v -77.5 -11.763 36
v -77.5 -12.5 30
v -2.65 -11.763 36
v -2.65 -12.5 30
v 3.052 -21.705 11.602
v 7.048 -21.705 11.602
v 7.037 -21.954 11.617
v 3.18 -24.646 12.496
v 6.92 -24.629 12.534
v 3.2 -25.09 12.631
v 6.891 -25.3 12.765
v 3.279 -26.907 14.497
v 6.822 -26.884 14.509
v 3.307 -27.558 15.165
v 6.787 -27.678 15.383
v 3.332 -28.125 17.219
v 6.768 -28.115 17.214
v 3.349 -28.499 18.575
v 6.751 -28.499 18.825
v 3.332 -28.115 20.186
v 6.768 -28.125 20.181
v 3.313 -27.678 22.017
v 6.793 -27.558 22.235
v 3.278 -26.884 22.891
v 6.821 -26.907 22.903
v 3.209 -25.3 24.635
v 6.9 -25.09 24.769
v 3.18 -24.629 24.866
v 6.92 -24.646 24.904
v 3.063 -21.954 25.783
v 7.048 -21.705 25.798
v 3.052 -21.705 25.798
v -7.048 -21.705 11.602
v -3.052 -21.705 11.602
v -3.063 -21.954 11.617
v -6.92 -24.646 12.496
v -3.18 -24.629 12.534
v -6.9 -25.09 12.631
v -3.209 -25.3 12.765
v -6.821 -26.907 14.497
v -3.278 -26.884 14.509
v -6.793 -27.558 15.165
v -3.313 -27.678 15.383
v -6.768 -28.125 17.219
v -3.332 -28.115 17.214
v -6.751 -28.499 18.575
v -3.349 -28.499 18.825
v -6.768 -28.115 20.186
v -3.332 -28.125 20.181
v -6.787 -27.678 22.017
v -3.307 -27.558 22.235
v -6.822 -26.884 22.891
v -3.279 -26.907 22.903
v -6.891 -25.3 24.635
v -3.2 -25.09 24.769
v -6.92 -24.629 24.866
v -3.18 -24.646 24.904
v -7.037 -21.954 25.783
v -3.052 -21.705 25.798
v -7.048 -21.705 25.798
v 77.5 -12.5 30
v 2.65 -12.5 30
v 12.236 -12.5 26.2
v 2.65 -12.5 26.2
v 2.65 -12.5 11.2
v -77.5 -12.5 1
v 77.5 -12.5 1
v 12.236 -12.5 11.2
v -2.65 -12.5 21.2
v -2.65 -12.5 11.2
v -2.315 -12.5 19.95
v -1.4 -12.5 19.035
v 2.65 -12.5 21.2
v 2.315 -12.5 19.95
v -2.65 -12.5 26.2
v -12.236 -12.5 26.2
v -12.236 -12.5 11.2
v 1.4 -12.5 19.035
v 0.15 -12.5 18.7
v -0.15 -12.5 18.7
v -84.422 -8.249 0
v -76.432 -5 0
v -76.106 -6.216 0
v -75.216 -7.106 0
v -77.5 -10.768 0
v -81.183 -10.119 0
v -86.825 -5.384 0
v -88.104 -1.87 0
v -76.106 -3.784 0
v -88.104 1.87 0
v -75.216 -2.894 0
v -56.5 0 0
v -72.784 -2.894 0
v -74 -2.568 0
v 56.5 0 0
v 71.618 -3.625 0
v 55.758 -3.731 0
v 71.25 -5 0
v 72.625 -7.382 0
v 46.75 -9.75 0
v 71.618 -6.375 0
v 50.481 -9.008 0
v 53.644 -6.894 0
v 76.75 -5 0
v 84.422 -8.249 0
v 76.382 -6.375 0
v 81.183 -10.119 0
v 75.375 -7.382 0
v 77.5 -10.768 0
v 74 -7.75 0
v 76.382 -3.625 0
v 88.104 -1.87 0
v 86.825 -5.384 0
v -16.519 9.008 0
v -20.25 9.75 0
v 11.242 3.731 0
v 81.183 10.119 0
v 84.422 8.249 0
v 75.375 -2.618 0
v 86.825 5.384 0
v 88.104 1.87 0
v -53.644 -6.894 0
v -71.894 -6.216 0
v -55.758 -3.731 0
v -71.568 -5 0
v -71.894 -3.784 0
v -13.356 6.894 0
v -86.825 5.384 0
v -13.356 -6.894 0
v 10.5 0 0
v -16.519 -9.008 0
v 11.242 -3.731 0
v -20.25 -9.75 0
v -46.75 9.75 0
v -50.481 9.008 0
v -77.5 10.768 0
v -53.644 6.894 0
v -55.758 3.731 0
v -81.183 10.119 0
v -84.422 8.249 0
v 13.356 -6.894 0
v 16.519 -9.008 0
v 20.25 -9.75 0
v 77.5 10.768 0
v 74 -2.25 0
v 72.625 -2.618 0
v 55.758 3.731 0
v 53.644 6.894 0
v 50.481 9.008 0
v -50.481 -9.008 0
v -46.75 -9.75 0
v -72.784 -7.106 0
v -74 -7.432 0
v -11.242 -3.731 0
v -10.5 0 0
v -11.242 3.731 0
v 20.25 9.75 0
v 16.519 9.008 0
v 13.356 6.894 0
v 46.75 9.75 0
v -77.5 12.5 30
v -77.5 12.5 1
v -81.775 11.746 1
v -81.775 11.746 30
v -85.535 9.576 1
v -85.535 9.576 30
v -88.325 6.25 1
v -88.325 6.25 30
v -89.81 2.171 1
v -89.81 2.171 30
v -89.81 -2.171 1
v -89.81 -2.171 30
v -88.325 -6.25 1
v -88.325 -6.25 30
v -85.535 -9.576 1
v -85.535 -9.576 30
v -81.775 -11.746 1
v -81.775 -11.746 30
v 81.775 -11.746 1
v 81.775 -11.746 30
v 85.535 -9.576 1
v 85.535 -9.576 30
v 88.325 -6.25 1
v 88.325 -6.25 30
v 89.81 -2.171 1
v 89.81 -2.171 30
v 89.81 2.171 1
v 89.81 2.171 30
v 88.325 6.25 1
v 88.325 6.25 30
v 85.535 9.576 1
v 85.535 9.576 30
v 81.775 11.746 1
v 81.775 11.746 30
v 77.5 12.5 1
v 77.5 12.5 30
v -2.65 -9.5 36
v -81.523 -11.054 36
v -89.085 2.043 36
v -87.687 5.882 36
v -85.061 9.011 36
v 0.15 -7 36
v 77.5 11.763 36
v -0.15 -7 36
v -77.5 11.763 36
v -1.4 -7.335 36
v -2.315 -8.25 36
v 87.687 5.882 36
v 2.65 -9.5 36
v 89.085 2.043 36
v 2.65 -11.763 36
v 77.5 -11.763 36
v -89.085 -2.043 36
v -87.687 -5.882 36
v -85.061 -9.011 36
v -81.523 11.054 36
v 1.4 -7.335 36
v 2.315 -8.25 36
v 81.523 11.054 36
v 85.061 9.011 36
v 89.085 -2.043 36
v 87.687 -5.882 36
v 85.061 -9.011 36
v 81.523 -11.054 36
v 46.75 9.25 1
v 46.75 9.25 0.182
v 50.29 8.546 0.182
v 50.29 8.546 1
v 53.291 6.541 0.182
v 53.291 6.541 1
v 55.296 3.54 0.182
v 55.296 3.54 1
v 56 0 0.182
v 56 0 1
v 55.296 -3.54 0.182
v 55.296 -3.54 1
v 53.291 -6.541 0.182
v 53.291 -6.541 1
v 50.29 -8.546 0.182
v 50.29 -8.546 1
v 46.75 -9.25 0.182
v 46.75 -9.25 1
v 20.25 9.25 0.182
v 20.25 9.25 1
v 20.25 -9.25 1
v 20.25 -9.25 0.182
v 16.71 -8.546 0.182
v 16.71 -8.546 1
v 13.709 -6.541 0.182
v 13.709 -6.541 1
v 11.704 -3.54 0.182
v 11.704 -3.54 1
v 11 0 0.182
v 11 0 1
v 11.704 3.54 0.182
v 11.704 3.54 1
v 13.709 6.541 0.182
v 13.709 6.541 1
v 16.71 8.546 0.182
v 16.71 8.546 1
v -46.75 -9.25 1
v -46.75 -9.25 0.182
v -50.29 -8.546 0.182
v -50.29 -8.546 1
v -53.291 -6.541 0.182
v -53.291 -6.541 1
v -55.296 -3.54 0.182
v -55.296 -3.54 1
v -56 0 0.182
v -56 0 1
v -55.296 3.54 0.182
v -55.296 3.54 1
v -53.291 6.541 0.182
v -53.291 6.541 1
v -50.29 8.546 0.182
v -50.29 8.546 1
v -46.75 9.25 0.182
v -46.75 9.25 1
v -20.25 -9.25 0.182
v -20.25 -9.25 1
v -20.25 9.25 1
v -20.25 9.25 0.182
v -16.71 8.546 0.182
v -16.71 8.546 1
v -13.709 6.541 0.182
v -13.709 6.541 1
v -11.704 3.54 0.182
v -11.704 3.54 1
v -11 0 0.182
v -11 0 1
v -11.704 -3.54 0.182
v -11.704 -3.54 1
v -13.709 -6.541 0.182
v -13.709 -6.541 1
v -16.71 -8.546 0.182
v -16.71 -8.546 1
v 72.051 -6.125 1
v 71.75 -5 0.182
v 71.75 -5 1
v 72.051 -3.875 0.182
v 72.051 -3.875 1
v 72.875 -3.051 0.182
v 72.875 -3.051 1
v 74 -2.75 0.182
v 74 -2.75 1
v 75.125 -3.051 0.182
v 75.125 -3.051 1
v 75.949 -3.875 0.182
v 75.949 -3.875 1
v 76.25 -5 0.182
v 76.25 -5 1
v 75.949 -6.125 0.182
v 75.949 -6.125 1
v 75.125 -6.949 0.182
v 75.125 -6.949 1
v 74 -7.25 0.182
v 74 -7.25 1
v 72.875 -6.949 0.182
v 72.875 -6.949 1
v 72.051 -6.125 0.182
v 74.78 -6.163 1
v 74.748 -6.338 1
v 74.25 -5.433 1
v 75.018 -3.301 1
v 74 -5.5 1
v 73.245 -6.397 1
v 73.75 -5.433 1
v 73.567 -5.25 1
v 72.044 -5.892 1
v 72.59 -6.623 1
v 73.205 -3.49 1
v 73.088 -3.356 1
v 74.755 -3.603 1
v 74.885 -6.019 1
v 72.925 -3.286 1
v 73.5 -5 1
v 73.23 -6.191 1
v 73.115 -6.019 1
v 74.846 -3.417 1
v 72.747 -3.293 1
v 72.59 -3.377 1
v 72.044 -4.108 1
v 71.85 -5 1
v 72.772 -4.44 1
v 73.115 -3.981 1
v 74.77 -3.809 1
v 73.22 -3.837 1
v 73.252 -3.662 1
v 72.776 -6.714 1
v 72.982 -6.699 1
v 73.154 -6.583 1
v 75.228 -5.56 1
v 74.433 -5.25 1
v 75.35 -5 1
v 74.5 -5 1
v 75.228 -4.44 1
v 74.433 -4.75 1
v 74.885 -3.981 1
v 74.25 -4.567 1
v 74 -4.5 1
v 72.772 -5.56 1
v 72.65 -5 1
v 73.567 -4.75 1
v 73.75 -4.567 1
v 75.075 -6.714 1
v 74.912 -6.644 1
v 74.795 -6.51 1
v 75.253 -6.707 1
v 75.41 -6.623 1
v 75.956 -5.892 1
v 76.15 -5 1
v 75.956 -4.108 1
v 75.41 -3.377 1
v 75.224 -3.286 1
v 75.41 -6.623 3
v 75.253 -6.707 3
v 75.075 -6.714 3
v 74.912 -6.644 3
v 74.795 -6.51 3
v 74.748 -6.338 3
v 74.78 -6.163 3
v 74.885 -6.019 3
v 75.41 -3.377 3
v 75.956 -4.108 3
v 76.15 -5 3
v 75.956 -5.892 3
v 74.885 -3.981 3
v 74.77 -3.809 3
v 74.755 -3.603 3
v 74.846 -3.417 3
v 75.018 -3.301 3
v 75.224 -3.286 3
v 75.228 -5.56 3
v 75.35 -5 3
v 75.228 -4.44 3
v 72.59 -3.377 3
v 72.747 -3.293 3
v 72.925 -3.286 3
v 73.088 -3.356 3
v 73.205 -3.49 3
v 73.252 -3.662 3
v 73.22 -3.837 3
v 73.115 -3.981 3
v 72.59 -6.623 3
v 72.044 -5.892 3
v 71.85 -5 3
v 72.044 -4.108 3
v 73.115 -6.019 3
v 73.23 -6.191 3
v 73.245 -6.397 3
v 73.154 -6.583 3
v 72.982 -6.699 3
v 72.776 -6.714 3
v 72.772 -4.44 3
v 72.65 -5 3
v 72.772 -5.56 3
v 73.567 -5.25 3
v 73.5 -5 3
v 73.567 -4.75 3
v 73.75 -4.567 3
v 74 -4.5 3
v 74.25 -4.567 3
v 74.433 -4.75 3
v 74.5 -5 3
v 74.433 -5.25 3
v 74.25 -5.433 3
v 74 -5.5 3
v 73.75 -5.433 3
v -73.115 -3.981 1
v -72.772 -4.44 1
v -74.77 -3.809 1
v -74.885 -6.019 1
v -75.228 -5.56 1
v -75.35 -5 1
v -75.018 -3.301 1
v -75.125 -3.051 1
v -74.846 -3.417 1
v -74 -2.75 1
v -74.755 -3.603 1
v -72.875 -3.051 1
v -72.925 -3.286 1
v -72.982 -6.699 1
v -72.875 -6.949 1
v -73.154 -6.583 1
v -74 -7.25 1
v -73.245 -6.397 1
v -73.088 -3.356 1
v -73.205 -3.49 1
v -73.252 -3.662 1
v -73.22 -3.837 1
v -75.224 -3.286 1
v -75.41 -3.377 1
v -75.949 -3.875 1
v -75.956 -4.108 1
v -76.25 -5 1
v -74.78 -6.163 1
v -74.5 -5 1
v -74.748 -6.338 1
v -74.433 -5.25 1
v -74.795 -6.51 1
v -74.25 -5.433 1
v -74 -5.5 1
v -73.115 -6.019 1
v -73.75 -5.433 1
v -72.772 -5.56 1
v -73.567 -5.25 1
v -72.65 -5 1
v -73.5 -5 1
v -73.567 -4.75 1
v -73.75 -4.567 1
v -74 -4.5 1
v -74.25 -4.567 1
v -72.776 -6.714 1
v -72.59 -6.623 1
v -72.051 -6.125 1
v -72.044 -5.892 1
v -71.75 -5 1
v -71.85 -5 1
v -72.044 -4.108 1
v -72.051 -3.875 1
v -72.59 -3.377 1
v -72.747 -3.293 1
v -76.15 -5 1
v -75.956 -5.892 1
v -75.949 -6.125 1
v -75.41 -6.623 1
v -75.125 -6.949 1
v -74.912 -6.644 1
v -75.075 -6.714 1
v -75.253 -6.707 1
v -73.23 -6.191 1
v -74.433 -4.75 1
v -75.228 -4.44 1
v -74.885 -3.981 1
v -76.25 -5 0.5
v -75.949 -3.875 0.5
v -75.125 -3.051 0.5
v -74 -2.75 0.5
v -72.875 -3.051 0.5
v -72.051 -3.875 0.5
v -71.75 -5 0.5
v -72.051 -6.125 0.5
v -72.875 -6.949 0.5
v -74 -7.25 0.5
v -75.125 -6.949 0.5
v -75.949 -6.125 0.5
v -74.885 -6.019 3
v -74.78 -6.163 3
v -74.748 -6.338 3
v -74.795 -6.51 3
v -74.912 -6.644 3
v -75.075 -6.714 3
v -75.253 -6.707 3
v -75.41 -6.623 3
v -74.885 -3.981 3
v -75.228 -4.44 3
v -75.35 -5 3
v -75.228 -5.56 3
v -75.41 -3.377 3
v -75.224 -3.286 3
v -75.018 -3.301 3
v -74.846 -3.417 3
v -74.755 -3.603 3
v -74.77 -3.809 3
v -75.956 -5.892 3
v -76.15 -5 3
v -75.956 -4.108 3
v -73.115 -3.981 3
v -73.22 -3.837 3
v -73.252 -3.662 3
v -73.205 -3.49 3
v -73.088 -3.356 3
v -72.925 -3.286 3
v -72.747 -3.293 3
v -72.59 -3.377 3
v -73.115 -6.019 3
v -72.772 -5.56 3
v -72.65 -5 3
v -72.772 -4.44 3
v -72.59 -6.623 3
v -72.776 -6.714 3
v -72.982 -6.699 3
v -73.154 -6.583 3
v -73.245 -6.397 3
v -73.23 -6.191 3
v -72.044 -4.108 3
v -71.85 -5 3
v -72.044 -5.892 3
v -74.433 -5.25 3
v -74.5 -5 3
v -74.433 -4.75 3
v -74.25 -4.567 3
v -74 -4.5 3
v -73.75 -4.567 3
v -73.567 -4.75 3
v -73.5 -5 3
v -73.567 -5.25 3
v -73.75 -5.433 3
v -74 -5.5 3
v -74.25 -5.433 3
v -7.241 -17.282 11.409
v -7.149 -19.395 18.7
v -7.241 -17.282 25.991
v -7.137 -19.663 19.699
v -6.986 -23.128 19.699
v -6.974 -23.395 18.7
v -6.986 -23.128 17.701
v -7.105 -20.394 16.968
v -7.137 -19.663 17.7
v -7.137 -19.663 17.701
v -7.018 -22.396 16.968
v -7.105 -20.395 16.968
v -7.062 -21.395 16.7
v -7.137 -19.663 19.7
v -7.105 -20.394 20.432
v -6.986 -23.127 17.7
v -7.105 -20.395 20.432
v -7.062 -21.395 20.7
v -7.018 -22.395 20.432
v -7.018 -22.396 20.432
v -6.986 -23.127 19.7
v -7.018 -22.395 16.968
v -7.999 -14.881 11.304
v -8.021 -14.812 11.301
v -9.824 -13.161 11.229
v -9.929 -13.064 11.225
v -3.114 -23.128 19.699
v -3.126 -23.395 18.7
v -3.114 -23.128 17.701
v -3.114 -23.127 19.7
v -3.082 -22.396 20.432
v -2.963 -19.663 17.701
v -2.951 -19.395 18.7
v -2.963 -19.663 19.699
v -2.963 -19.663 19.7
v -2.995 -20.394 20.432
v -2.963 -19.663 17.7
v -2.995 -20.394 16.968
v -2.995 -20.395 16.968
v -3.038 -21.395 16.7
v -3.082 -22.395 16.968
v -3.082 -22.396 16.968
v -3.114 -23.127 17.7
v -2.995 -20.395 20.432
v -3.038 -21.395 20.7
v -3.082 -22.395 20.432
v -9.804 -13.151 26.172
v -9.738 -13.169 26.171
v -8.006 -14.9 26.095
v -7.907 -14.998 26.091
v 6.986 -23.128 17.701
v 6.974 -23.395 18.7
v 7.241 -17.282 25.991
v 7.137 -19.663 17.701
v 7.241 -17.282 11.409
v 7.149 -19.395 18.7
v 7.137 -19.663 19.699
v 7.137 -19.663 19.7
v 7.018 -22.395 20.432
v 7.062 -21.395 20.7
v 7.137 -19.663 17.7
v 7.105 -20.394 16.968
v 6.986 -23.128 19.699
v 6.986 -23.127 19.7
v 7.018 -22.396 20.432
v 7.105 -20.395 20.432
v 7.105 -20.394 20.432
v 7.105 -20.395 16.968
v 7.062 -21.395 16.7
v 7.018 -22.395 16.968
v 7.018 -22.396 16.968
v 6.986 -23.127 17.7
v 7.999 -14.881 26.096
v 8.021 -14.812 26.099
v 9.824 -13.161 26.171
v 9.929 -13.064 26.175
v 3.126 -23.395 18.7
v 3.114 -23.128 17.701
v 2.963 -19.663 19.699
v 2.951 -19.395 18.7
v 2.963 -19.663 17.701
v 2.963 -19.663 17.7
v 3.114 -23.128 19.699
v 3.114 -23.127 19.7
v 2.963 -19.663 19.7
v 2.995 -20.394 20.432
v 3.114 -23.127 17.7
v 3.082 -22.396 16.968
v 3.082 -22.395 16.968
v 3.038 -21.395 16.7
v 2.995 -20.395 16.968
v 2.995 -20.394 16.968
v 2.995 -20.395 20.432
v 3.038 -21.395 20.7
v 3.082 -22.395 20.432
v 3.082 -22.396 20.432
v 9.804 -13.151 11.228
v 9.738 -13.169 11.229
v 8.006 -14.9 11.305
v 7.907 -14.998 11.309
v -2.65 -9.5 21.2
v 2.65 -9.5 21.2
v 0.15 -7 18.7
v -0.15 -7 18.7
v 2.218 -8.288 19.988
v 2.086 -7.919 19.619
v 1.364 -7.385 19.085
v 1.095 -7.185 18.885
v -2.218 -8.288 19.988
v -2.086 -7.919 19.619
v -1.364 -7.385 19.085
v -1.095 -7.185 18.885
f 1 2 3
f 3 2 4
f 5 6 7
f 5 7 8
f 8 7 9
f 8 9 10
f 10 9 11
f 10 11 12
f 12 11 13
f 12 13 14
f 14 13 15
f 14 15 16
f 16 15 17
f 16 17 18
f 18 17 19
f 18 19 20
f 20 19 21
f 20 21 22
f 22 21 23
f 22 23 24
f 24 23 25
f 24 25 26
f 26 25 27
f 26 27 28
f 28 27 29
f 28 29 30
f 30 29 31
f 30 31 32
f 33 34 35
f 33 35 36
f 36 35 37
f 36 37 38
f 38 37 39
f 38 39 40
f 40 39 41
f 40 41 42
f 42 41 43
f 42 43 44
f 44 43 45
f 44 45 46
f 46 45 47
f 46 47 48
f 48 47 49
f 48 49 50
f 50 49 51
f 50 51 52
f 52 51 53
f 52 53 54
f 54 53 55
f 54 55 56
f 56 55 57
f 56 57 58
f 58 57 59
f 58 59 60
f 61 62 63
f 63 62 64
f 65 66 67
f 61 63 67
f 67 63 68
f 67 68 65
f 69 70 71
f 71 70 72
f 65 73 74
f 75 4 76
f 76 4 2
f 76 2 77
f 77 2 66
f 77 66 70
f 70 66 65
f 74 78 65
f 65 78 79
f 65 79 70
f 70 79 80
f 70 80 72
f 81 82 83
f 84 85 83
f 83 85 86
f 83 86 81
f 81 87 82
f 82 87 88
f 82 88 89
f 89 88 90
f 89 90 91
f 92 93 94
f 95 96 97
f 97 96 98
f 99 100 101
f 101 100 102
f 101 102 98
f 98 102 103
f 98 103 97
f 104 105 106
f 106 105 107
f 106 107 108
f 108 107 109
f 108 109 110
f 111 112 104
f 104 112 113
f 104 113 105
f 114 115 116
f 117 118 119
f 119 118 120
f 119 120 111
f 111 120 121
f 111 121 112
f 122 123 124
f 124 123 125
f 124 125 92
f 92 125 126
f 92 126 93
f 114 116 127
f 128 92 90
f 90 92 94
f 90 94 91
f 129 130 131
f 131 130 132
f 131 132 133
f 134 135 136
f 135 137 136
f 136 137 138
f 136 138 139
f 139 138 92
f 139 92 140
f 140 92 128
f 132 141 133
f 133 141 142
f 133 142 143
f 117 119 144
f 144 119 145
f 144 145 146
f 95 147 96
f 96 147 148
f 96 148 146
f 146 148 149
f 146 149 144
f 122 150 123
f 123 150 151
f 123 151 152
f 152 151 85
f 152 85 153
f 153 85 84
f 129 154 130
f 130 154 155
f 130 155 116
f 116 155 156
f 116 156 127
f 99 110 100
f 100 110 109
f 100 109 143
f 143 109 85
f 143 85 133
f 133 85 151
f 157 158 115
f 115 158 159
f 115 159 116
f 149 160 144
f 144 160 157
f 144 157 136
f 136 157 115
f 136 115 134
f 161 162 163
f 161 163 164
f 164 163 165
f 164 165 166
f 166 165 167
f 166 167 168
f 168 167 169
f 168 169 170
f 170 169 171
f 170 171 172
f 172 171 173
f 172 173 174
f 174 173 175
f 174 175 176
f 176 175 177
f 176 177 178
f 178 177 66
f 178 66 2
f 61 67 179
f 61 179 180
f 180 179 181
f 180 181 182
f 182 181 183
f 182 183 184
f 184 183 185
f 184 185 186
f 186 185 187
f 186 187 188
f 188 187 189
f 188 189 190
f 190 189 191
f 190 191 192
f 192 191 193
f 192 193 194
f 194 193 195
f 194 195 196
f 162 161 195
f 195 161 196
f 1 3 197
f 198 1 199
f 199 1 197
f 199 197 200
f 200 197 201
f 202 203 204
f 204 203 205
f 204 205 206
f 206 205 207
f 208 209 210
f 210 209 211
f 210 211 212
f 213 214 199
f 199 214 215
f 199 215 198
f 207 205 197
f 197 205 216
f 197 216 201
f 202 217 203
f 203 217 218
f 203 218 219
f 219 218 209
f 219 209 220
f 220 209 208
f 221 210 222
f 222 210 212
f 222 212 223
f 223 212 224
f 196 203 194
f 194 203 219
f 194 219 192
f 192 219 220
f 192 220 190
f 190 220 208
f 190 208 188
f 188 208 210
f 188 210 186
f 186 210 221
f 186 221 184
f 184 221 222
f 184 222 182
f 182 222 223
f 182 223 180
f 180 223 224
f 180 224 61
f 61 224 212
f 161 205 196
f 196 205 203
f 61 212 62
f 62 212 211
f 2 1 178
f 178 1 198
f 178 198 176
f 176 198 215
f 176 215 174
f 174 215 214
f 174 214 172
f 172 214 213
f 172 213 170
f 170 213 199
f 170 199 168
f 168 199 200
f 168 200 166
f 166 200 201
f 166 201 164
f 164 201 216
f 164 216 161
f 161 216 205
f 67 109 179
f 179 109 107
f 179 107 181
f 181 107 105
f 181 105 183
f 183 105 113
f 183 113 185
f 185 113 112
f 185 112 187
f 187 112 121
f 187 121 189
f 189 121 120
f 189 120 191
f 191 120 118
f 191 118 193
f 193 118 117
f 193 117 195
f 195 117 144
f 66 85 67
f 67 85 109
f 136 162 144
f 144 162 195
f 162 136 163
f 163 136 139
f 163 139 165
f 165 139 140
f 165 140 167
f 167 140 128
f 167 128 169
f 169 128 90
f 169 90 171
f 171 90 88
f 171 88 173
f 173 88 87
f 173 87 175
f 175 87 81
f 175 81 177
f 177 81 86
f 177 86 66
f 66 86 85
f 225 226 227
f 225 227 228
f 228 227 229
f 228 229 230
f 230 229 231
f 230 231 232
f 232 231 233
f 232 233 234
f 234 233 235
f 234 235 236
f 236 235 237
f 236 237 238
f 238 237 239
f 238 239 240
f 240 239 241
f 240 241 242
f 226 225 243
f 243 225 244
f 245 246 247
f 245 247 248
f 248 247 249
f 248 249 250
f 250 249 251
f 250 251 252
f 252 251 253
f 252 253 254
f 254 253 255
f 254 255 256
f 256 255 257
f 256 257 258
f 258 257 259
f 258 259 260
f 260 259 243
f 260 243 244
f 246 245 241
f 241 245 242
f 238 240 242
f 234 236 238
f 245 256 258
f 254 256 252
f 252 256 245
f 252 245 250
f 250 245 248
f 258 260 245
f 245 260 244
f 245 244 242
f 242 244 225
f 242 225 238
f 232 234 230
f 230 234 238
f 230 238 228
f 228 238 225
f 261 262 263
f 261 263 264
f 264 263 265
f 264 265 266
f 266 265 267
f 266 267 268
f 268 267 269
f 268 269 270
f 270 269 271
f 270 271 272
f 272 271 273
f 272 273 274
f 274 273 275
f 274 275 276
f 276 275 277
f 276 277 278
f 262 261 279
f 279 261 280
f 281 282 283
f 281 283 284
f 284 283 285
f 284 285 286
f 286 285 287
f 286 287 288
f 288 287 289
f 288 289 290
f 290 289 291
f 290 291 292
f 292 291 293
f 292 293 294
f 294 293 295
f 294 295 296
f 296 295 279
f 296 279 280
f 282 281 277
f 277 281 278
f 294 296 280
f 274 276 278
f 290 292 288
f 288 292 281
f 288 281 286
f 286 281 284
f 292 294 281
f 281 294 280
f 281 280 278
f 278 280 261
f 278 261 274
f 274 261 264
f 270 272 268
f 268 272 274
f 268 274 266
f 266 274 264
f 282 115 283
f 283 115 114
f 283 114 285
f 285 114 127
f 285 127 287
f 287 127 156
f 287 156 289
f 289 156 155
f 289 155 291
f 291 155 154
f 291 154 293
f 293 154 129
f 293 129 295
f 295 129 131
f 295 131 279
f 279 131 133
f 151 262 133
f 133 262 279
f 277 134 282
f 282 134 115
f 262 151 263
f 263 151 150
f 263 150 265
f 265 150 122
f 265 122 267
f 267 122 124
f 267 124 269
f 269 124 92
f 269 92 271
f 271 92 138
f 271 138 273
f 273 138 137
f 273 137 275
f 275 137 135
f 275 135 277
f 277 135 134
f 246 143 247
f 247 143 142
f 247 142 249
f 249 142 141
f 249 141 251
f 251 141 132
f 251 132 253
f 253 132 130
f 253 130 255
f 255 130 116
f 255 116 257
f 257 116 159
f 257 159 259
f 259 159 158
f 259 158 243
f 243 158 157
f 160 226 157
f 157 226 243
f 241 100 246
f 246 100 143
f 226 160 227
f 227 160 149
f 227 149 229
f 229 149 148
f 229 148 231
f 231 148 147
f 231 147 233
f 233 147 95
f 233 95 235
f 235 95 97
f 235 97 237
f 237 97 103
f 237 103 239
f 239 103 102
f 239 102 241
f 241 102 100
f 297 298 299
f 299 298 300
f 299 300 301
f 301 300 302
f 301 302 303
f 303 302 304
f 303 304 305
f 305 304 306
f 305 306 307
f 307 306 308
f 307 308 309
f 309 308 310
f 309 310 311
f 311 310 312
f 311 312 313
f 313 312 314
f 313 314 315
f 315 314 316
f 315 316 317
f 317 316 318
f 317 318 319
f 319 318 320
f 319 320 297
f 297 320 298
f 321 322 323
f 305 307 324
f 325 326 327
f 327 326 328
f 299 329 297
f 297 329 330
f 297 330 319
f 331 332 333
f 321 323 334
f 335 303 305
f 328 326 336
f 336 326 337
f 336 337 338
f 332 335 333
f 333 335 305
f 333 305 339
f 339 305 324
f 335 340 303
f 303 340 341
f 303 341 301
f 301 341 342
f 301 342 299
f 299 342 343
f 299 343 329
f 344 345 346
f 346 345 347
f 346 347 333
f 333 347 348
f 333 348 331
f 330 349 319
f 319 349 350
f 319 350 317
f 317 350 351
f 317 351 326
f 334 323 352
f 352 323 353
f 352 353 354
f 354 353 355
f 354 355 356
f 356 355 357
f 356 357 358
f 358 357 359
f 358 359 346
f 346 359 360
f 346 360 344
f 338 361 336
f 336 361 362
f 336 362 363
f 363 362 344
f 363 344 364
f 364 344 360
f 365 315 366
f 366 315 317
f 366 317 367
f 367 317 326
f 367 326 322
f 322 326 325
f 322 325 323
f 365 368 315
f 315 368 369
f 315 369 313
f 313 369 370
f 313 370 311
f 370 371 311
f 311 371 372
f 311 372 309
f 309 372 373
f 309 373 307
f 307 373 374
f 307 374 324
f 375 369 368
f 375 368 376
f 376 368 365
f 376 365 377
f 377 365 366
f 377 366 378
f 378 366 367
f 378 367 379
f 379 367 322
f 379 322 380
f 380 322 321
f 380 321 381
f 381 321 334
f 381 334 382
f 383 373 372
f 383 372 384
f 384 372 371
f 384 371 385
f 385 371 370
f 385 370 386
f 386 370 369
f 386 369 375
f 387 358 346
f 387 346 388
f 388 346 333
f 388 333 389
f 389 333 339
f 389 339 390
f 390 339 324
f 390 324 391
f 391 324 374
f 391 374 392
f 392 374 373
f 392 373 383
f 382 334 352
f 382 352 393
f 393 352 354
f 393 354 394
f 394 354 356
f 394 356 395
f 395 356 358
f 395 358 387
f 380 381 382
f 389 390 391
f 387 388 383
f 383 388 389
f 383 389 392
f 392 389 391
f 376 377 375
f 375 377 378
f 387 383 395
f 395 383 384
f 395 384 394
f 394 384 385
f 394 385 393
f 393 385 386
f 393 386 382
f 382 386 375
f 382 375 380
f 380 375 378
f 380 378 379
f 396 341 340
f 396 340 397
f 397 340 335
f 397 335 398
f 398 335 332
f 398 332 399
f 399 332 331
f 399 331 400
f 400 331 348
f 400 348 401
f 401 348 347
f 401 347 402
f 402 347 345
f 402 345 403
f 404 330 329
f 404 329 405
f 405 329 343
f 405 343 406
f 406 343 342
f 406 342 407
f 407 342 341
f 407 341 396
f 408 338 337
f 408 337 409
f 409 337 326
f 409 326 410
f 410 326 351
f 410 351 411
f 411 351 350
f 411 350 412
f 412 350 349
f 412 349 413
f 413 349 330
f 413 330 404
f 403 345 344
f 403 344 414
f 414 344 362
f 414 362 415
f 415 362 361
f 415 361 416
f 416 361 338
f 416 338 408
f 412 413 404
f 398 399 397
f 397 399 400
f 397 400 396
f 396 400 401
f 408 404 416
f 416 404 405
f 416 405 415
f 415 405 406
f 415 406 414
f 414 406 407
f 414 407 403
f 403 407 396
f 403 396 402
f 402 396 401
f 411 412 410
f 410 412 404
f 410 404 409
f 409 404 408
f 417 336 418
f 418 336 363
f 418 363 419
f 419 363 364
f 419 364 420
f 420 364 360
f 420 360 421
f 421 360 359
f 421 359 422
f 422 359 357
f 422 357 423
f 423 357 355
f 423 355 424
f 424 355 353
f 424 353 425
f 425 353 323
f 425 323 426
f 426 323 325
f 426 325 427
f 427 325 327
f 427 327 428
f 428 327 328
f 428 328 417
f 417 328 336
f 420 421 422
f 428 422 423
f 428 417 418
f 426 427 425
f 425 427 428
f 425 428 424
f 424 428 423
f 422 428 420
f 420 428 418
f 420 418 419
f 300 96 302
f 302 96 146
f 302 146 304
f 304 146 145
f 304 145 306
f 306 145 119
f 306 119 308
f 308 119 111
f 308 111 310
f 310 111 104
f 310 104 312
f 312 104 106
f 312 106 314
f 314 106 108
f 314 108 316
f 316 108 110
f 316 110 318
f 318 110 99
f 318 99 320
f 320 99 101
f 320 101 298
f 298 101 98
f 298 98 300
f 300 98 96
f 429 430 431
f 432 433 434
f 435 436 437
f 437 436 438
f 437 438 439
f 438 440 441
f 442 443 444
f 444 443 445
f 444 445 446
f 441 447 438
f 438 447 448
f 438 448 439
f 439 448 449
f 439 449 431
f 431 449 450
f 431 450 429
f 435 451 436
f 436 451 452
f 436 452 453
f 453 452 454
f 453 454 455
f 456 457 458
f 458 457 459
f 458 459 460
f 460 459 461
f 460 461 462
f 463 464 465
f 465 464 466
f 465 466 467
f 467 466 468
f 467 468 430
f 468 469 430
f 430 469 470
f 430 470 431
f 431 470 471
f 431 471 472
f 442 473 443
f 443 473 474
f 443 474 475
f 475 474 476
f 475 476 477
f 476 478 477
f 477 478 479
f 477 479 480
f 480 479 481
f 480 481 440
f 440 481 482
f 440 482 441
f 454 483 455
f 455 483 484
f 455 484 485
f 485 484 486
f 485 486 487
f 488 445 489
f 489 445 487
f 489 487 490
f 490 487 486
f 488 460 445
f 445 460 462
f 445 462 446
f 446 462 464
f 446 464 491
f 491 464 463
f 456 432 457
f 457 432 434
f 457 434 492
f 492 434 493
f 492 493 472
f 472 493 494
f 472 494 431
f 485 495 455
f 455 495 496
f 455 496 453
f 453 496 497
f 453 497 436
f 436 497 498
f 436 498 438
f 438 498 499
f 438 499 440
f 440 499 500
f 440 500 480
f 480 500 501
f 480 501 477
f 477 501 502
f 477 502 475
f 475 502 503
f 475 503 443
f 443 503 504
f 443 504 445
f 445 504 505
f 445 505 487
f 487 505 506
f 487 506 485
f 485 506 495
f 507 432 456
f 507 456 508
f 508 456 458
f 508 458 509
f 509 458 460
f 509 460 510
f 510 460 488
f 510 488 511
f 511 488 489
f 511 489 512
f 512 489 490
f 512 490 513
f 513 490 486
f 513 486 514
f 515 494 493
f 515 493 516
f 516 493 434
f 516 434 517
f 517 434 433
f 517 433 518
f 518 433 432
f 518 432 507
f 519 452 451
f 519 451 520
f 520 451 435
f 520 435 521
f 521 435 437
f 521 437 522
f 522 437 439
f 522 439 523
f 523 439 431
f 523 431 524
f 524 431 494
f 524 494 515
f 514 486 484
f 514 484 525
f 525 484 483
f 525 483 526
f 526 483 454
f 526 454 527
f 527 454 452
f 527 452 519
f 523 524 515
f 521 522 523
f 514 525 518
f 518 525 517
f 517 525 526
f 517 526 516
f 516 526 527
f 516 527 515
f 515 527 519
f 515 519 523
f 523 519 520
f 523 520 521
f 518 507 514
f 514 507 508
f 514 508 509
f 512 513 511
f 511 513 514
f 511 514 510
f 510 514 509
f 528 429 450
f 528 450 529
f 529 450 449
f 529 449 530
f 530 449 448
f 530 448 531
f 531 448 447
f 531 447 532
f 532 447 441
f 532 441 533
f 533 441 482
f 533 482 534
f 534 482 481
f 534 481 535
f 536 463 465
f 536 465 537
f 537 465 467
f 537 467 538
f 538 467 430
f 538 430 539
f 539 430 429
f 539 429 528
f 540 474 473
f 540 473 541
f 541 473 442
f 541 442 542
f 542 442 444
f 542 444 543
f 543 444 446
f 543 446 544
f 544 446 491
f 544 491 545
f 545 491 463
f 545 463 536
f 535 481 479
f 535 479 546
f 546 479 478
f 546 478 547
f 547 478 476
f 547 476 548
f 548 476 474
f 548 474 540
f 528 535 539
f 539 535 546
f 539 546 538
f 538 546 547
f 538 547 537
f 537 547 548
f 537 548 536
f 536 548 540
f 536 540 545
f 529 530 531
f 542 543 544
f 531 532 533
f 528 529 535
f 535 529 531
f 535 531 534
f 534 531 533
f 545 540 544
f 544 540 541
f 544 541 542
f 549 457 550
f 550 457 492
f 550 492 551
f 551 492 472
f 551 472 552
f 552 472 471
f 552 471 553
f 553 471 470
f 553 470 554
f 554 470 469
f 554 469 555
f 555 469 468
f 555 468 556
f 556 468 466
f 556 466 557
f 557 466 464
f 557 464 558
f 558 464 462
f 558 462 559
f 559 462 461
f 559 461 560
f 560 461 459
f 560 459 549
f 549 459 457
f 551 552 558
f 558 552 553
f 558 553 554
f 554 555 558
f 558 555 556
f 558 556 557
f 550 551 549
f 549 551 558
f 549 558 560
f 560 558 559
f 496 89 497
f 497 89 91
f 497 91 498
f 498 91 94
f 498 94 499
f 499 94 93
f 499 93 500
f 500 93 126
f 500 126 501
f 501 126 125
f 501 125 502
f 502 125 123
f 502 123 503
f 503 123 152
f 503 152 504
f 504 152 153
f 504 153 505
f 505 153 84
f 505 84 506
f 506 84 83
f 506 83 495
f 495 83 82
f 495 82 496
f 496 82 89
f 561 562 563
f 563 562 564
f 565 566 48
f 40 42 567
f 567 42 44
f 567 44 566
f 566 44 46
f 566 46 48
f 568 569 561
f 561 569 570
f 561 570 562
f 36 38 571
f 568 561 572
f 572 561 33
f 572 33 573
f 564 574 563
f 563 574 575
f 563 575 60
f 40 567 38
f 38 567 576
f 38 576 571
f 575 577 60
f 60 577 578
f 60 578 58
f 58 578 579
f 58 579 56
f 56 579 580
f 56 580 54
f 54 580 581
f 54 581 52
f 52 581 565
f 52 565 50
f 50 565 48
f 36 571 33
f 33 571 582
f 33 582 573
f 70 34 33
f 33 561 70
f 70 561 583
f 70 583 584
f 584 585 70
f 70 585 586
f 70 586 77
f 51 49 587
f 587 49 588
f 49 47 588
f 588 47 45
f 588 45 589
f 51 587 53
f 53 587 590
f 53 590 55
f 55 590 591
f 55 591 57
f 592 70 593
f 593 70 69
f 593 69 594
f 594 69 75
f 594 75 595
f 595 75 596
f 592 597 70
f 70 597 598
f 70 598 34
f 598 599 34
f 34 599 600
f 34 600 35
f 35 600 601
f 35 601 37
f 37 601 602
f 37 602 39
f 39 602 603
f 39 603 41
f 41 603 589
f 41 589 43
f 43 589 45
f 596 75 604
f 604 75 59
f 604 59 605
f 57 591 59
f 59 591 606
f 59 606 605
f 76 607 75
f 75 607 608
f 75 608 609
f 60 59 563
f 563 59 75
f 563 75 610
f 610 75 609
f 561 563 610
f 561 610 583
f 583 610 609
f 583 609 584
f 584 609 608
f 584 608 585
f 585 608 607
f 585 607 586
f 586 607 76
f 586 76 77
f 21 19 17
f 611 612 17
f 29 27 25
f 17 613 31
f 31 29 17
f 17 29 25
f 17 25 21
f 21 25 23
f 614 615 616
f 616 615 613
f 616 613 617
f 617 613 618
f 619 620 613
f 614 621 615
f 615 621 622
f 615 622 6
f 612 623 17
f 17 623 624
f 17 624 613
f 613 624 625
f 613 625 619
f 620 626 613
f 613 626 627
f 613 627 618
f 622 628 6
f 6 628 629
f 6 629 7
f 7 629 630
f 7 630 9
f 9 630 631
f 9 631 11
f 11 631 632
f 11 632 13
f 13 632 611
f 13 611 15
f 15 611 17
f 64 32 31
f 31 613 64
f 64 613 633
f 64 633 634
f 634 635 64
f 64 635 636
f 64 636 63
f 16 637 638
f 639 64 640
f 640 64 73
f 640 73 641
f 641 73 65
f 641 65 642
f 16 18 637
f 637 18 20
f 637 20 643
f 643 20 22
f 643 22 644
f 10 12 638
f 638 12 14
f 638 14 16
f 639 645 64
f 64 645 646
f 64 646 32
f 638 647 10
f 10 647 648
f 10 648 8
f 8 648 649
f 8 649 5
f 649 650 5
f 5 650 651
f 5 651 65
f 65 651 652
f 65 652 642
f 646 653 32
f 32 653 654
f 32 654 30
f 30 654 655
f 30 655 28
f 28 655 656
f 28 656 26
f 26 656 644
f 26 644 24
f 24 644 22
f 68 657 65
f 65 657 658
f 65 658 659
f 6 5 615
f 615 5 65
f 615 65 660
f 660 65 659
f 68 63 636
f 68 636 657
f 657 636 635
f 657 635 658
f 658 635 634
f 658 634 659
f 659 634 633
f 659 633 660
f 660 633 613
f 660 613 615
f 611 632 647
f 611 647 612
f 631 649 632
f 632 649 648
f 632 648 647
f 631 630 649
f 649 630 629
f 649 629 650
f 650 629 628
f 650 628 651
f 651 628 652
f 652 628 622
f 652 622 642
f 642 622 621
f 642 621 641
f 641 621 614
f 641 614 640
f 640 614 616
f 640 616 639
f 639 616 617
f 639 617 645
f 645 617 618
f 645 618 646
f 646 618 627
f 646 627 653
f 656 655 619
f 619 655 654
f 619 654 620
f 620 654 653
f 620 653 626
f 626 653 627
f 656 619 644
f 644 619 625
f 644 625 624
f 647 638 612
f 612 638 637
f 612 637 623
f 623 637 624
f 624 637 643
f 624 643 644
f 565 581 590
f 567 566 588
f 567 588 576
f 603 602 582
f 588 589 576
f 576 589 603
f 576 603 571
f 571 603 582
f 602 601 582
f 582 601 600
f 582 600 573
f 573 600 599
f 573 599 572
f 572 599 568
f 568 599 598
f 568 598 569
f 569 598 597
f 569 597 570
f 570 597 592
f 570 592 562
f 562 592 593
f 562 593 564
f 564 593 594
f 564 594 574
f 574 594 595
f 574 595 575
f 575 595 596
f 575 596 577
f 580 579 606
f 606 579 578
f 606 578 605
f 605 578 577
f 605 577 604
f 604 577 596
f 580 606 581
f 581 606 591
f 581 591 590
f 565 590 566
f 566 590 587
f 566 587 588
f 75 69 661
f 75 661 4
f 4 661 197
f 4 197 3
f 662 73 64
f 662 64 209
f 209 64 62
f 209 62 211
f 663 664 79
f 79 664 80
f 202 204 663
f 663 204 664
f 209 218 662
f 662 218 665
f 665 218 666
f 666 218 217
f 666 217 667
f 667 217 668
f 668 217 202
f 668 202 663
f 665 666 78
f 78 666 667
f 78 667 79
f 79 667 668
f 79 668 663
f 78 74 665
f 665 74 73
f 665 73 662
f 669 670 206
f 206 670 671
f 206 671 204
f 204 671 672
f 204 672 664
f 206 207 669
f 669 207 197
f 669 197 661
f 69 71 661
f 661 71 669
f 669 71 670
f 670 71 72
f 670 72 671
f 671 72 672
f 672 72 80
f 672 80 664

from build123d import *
from OCP.BRepFilletAPI import BRepFilletAPI_MakeChamfer

# Parameters (mm, degrees)
SKETCH1_W                 = 180
SKETCH1_H                 = 25
BOSS_EXTRUDE1_DEPTH       = 36
FILLET1_RADIUS            = 12.5
FILLET1_LENGTH            = 36
FILLET2_RADIUS            = 12.5
FILLET2_LENGTH            = 36
CHAMFER1_SIZE             = 6
CHAMFER1_SIZE2            = 0.736707365
CHAMFER2_SIZE             = 1
CHAMFER2_SIZE2            = 1.732050808
CUT_EXTRUDE1_DEPTH        = 1
CHAMFER3_SIZE             = 0.5
CHAMFER3_SIZE2            = 0.181985117
SKETCH4_R                 = 2.25
SKETCH4_R_2               = 0.5
CUT_EXTRUDE2_DEPTH        = 1
SKETCH4_2_R               = 0.5
CUT_EXTRUDE3_DEPTH        = 3
CHAMFER4_SIZE             = 0.5
CHAMFER4_SIZE2            = 0.181985117
CHAMFER4_OF_MIRROR1_SIZE2 = 0.5
CHAMFER4_OF_MIRROR1_SIZE  = 0.181985117
SKETCH6_W                 = 4.8
SKETCH6_H                 = 15
BOSS_EXTRUDE2_DEPTH       = 16
BOSS_EXTRUDE2_TAPER       = 2.5
FILLET3_R                 = 5
FILLET4_R                 = 7.104861
FILLET3_OF_MIRROR2_R      = 5
FILLET4_OF_MIRROR2_R      = 7.104861
CUT_EXTRUDE4_DEPTH        = 102.035884743
CUT_EXTRUDE4_DEPTH_BACK   = 102.035884743
SKETCH7_R                 = 2
SKETCH8_W                 = 5.3
SKETCH8_H                 = 17.3
CUT_EXTRUDE5_DEPTH        = 5.5
FILLET5_R                 = 2.5


# Some blends are built 0.0001 mm under size
with BuildPart() as part:
    # Sketch1 → Boss-Extrude1 (new body)
    with BuildSketch(Plane.XY):
        Rectangle(SKETCH1_W, SKETCH1_H)
    extrude(amount=BOSS_EXTRUDE1_DEPTH)

    # Fillet1: full round fillet: the end face becomes a half cylinder, R = half its width
    fillet1_face = Plane((90, 0, 18), x_dir=(0, 0, -1), z_dir=(1, 0, 0))  # on the end face: x along it, z out of the body
    fillet1_slab = fillet1_face.offset(-FILLET1_RADIUS / 2) * Box(FILLET1_LENGTH, 2 * FILLET1_RADIUS, FILLET1_RADIUS, mode=Mode.PRIVATE)  # the body's end, R deep
    fillet1_round = Plane((77.5, 0, 18), x_dir=(1, 0, 0), z_dir=(0, 0, -1)) * Cylinder(FILLET1_RADIUS, FILLET1_LENGTH, mode=Mode.PRIVATE)  # its axis R under the face
    add(fillet1_slab - fillet1_round, mode=Mode.SUBTRACT)

    # Fillet2: full round fillet: the end face becomes a half cylinder, R = half its width
    fillet2_face = Plane((-90, 0, 18), x_dir=(0, 0, 1), z_dir=(-1, 0, 0))  # on the end face: x along it, z out of the body
    fillet2_slab = fillet2_face.offset(-FILLET2_RADIUS / 2) * Box(FILLET2_LENGTH, 2 * FILLET2_RADIUS, FILLET2_RADIUS, mode=Mode.PRIVATE)  # the body's end, R deep
    fillet2_round = Plane((-77.5, 0, 18), x_dir=(-1, 0, 0), z_dir=(0, 0, 1)) * Cylinder(FILLET2_RADIUS, FILLET2_LENGTH, mode=Mode.PRIVATE)  # its axis R under the face
    add(fillet2_slab - fillet2_round, mode=Mode.SUBTRACT)

    # Chamfer1: one chamfer whose edges measure the first distance from different faces: ONE call of the kernel's chamfer builder (chamfer() names one face for all edges)
    chamfer1_edges_1 = [part.edges().sort_by_distance(p)[0] for p in [
        (0, 12.5, 36),
    ]]
    chamfer1_side_1 = [part.faces().sort_by_distance(p)[0] for p in [
        (0, 12.5, 18),
    ]]
    chamfer1_edges_2 = [part.edges().sort_by_distance(p)[0] for p in [
        (90, 0, 36),
    ]]
    chamfer1_side_2 = [part.faces().sort_by_distance(p)[0] for p in [
        (90, 0, 18),
    ]]
    chamfer1_edges_3 = [part.edges().sort_by_distance(p)[0] for p in [
        (0, -12.5, 36),
    ]]
    chamfer1_side_3 = [part.faces().sort_by_distance(p)[0] for p in [
        (0, -12.5, 18),
    ]]
    chamfer1_edges_4 = [part.edges().sort_by_distance(p)[0] for p in [
        (-90, 0, 36),
    ]]
    chamfer1_side_4 = [part.faces().sort_by_distance(p)[0] for p in [
        (-90, 0, 18),
    ]]
    chamfer1 = BRepFilletAPI_MakeChamfer(part.part.solid().wrapped)
    for e in chamfer1_edges_1:
        chamfer1.Add(CHAMFER1_SIZE, CHAMFER1_SIZE2, e.wrapped, chamfer1_side_1[0].wrapped)  # the first distance lies on this face
    for e in chamfer1_edges_2:
        chamfer1.Add(CHAMFER1_SIZE, CHAMFER1_SIZE2, e.wrapped, chamfer1_side_2[0].wrapped)  # the first distance lies on this face
    for e in chamfer1_edges_3:
        chamfer1.Add(CHAMFER1_SIZE, CHAMFER1_SIZE2, e.wrapped, chamfer1_side_3[0].wrapped)  # the first distance lies on this face
    for e in chamfer1_edges_4:
        chamfer1.Add(CHAMFER1_SIZE, CHAMFER1_SIZE2, e.wrapped, chamfer1_side_4[0].wrapped)  # the first distance lies on this face
    add(Compound.cast(chamfer1.Shape()), mode=Mode.REPLACE)

    # Chamfer2: one chamfer whose edges measure the first distance from different faces: ONE call of the kernel's chamfer builder (chamfer() names one face for all edges)
    chamfer2_edges_1 = [part.edges().sort_by_distance(p)[0] for p in [
        (0, 12.5, 0),
    ]]
    chamfer2_side_1 = [part.faces().sort_by_distance(p)[0] for p in [
        (0, 12.5, 15),
    ]]
    chamfer2_edges_2 = [part.edges().sort_by_distance(p)[0] for p in [
        (90, 0, 0),
    ]]
    chamfer2_side_2 = [part.faces().sort_by_distance(p)[0] for p in [
        (90, 0, 15),
    ]]
    chamfer2_edges_3 = [part.edges().sort_by_distance(p)[0] for p in [
        (0, -12.5, 0),
    ]]
    chamfer2_side_3 = [part.faces().sort_by_distance(p)[0] for p in [
        (0, -12.5, 15),
    ]]
    chamfer2_edges_4 = [part.edges().sort_by_distance(p)[0] for p in [
        (-90, 0, 0),
    ]]
    chamfer2_side_4 = [part.faces().sort_by_distance(p)[0] for p in [
        (-90, 0, 15),
    ]]
    chamfer2 = BRepFilletAPI_MakeChamfer(part.part.solid().wrapped)
    for e in chamfer2_edges_1:
        chamfer2.Add(CHAMFER2_SIZE, CHAMFER2_SIZE2, e.wrapped, chamfer2_side_1[0].wrapped)  # the first distance lies on this face
    for e in chamfer2_edges_2:
        chamfer2.Add(CHAMFER2_SIZE, CHAMFER2_SIZE2, e.wrapped, chamfer2_side_2[0].wrapped)  # the first distance lies on this face
    for e in chamfer2_edges_3:
        chamfer2.Add(CHAMFER2_SIZE, CHAMFER2_SIZE2, e.wrapped, chamfer2_side_3[0].wrapped)  # the first distance lies on this face
    for e in chamfer2_edges_4:
        chamfer2.Add(CHAMFER2_SIZE, CHAMFER2_SIZE2, e.wrapped, chamfer2_side_4[0].wrapped)  # the first distance lies on this face
    add(Compound.cast(chamfer2.Shape()), mode=Mode.REPLACE)

    # Sketch2 → Cut-Extrude1 (cut)
    with BuildSketch(Plane(origin=(0, 0, 0), x_dir=(-1, 0, 0), z_dir=(0, 0, -1))):
        with BuildLine():
            Line((-46.75, 9.25), (-20.25, 9.25))
            ThreePointArc((-20.25, 9.25), (-11, 0), (-20.25, -9.25))
            Line((-20.25, -9.25), (-46.75, -9.25))
            ThreePointArc((-46.75, -9.25), (-56, 0), (-46.75, 9.25))
        make_face()
        with BuildLine():
            Line((46.75, 9.25), (20.25, 9.25))
            ThreePointArc((20.25, 9.25), (11, 0), (20.25, -9.25))
            Line((20.25, -9.25), (46.75, -9.25))
            ThreePointArc((46.75, -9.25), (56, 0), (46.75, 9.25))
        make_face()
    extrude(amount=-CUT_EXTRUDE1_DEPTH, mode=Mode.SUBTRACT)

    # Chamfer3
    chamfer3_edges = [part.edges().sort_by_distance(p)[0] for p in [
        (56, 0, 0),
        (33.5, -9.25, 0),
        (11, 0, 0),
        (33.5, 9.25, 0),
        (-56, 0, 0),
        (-33.5, 9.25, 0),
        (-11, 0, 0),
        (-33.5, -9.25, 0),
    ]]
    chamfer3_side = [part.faces().sort_by_distance(p)[0] for p in [
        (0, 0, 0),
    ]]
    chamfer(chamfer3_edges, length=CHAMFER3_SIZE, length2=CHAMFER3_SIZE2, reference=chamfer3_side[0])

    # Sketch4 → Cut-Extrude2 (cut)
    with BuildSketch(Plane(origin=(0, 0, 0), x_dir=(-1, 0, 0), z_dir=(0, 0, -1))):
        with Locations((-74, -5)):
            Circle(SKETCH4_R)
        with Locations((-74, -5)):
            Circle(SKETCH4_R_2, mode=Mode.SUBTRACT)
        with BuildLine():
            ThreePointArc((-72.589778643, -3.377108838), (-71.85, -5), (-72.589778643, -6.622891162))
            ThreePointArc((-72.589778643, -6.622891162), (-73.154078646, -6.583324687), (-73.114512171, -6.019024683))
            ThreePointArc((-73.114512171, -6.019024683), (-72.65, -5), (-73.114512171, -3.980975317))
            ThreePointArc((-73.114512171, -3.980975317), (-73.154078646, -3.416675313), (-72.589778643, -3.377108838))
        make_face(mode=Mode.SUBTRACT)
        with BuildLine():
            ThreePointArc((-75.410221357, -6.622891162), (-76.15, -5), (-75.410221357, -3.377108838))
            ThreePointArc((-75.410221357, -3.377108838), (-74.845921354, -3.416675313), (-74.885487829, -3.980975317))
            ThreePointArc((-74.885487829, -3.980975317), (-75.35, -5), (-74.885487829, -6.019024683))
            ThreePointArc((-74.885487829, -6.019024683), (-74.845921354, -6.583324687), (-75.410221357, -6.622891162))
        make_face(mode=Mode.SUBTRACT)
    cut_extrude2 = extrude(amount=-CUT_EXTRUDE2_DEPTH, mode=Mode.SUBTRACT)

    # Sketch4<2> → Cut-Extrude3 (cut)
    with BuildSketch(Plane(origin=(0, 0, 0), x_dir=(-1, 0, 0), z_dir=(0, 0, -1))):
        with BuildLine():
            ThreePointArc((-74.885487829, -6.019024683), (-74.845921354, -6.583324687), (-75.410221357, -6.622891162))
            ThreePointArc((-75.410221357, -6.622891162), (-76.15, -5), (-75.410221357, -3.377108838))
            ThreePointArc((-75.410221357, -3.377108838), (-74.845921354, -3.416675313), (-74.885487829, -3.980975317))
            ThreePointArc((-74.885487829, -3.980975317), (-75.35, -5), (-74.885487829, -6.019024683))
        make_face()
        with BuildLine():
            ThreePointArc((-73.114512171, -3.980975317), (-73.154078646, -3.416675313), (-72.589778643, -3.377108838))
            ThreePointArc((-72.589778643, -3.377108838), (-71.85, -5), (-72.589778643, -6.622891162))
            ThreePointArc((-72.589778643, -6.622891162), (-73.154078646, -6.583324687), (-73.114512171, -6.019024683))
            ThreePointArc((-73.114512171, -6.019024683), (-72.65, -5), (-73.114512171, -3.980975317))
        make_face()
        with Locations((-74, -5)):
            Circle(SKETCH4_2_R)
    cut_extrude3 = extrude(amount=-CUT_EXTRUDE3_DEPTH, mode=Mode.SUBTRACT)

    # Chamfer4
    chamfer4_edges = [part.edges().sort_by_distance(p)[0] for p in [
        (76.25, -5, 0),
    ]]
    chamfer4_side = [part.faces().sort_by_distance(p)[0] for p in [
        (-0.572534996, 0.038684797, 0),
    ]]
    chamfer(chamfer4_edges, length=CHAMFER4_SIZE, length2=CHAMFER4_SIZE2, reference=chamfer4_side[0])

    # Mirror1: Cut-Extrude2, Cut-Extrude3 across plane
    add(cut_extrude2.mirror(Plane(origin=(0, 0, 0), x_dir=(0, 0, 1), z_dir=(1, 0, 0))), mode=Mode.SUBTRACT)
    add(cut_extrude3.mirror(Plane(origin=(0, 0, 0), x_dir=(0, 0, 1), z_dir=(1, 0, 0))), mode=Mode.SUBTRACT)

    # Chamfer4 of Mirror1
    chamfer4_of_mirror1_edges = [part.edges().sort_by_distance(p)[0] for p in [
        (-76.25, -5, 0),
    ]]
    chamfer(chamfer4_of_mirror1_edges, length=CHAMFER4_OF_MIRROR1_SIZE, length2=CHAMFER4_OF_MIRROR1_SIZE2)

    # Sketch6 → Boss-Extrude2 (add)
    with BuildSketch(Plane.XZ.offset(12.5)):
        with Locations((-5.05, 18.7)):
            Rectangle(SKETCH6_W, SKETCH6_H)
    boss_extrude2 = extrude(amount=BOSS_EXTRUDE2_DEPTH, taper=BOSS_EXTRUDE2_TAPER)

    # Fillet3
    fillet3_edges = [part.edges().sort_by_distance(p)[0] for p in [
        (-7.45, -12.5, 18.7),
    ]]
    fillet(fillet3_edges, radius=FILLET3_R)

    # Fillet4
    fillet4_edges = [part.edges().sort_by_distance(p)[0] for p in [
        (-5.05, -28.5, 11.898575087),
        (-5.05, -28.5, 25.501424913),
    ]]
    fillet(fillet4_edges, radius=FILLET4_R - 0.0001)  # a hair under: the kernel refuses the full size

    # Mirror2: Boss-Extrude2 across plane
    add(boss_extrude2.mirror(Plane(origin=(0, 0, 0), x_dir=(0, 0, 1), z_dir=(1, 0, 0))))

    # Fillet3 of Mirror2
    fillet3_of_mirror2_edges = [part.edges().sort_by_distance(p)[0] for p in [
        (7.45, -12.5, 18.7),
    ]]
    fillet(fillet3_of_mirror2_edges, radius=FILLET3_OF_MIRROR2_R)

    # Fillet4 of Mirror2
    fillet4_of_mirror2_edges = [part.edges().sort_by_distance(p)[0] for p in [
        (5.05, -28.5, 11.898575087),
        (5.05, -28.5, 25.501424913),
    ]]
    fillet(fillet4_of_mirror2_edges, radius=FILLET4_OF_MIRROR2_R - 0.0001)  # a hair under: the kernel refuses the full size

    # Sketch7 → Cut-Extrude4 (cut, two sides: drawn at the far end of the back side and taken through both)
    with BuildSketch(Plane(origin=(0, 0, 0), x_dir=(0, 0, -1), z_dir=(1, 0, 0)).offset(-CUT_EXTRUDE4_DEPTH_BACK)):
        with Locations(Location((-18.7, -21.395138845, 0), (0, 0, 90))):
            Circle(SKETCH7_R)
    extrude(amount=CUT_EXTRUDE4_DEPTH + CUT_EXTRUDE4_DEPTH_BACK, mode=Mode.SUBTRACT)

    # Sketch8 → Cut-Extrude5 (cut)
    with BuildSketch(Plane.XZ.offset(12.5)):
        with Locations((0, 27.35)):
            Rectangle(SKETCH8_W, SKETCH8_H)
    extrude(amount=-CUT_EXTRUDE5_DEPTH, mode=Mode.SUBTRACT)

    # Fillet5
    # the kernel refuses this fillet: 2.5 mm, written as the material it adds along each edge
    with BuildSketch(Plane(origin=(-2.65, -7, 12.45), x_dir=(0, -1, 0), z_dir=(0, 0, 1)), Plane(origin=(2.65, -7, 36), x_dir=(0, -1, 0), z_dir=(0, 0, -1))) as fillet5_piece_1:
        with BuildLine():
            CenterArc((FILLET5_R, FILLET5_R), FILLET5_R, 180, 90)
            Line((0, FILLET5_R), (0, 0))
            Line((0, 0), (FILLET5_R, 0))
        make_face()
    extrude(amount=23.55)
    with BuildSketch(Plane(origin=(-2.65, -12.5, 18.7), x_dir=(0, 0, 1), z_dir=(0, 1, 0))) as fillet5_piece_2:
        with BuildLine():
            CenterArc((FILLET5_R, FILLET5_R), FILLET5_R, 180, 90)
            Line((0, FILLET5_R), (0, 0))
            Line((0, 0), (FILLET5_R, 0))
        make_face()
    extrude(amount=11.75)
    with BuildSketch(Plane(origin=(2.65, -12.5, 18.7), x_dir=(0, 0, 1), z_dir=(0, 1, 0))) as fillet5_piece_3:
        with BuildLine():
            CenterArc((FILLET5_R, -FILLET5_R), FILLET5_R, 90, 90)
            Line((0, -FILLET5_R), (0, 0))
            Line((0, 0), (FILLET5_R, 0))
        make_face()
    extrude(amount=11.75)


solid = part.part
